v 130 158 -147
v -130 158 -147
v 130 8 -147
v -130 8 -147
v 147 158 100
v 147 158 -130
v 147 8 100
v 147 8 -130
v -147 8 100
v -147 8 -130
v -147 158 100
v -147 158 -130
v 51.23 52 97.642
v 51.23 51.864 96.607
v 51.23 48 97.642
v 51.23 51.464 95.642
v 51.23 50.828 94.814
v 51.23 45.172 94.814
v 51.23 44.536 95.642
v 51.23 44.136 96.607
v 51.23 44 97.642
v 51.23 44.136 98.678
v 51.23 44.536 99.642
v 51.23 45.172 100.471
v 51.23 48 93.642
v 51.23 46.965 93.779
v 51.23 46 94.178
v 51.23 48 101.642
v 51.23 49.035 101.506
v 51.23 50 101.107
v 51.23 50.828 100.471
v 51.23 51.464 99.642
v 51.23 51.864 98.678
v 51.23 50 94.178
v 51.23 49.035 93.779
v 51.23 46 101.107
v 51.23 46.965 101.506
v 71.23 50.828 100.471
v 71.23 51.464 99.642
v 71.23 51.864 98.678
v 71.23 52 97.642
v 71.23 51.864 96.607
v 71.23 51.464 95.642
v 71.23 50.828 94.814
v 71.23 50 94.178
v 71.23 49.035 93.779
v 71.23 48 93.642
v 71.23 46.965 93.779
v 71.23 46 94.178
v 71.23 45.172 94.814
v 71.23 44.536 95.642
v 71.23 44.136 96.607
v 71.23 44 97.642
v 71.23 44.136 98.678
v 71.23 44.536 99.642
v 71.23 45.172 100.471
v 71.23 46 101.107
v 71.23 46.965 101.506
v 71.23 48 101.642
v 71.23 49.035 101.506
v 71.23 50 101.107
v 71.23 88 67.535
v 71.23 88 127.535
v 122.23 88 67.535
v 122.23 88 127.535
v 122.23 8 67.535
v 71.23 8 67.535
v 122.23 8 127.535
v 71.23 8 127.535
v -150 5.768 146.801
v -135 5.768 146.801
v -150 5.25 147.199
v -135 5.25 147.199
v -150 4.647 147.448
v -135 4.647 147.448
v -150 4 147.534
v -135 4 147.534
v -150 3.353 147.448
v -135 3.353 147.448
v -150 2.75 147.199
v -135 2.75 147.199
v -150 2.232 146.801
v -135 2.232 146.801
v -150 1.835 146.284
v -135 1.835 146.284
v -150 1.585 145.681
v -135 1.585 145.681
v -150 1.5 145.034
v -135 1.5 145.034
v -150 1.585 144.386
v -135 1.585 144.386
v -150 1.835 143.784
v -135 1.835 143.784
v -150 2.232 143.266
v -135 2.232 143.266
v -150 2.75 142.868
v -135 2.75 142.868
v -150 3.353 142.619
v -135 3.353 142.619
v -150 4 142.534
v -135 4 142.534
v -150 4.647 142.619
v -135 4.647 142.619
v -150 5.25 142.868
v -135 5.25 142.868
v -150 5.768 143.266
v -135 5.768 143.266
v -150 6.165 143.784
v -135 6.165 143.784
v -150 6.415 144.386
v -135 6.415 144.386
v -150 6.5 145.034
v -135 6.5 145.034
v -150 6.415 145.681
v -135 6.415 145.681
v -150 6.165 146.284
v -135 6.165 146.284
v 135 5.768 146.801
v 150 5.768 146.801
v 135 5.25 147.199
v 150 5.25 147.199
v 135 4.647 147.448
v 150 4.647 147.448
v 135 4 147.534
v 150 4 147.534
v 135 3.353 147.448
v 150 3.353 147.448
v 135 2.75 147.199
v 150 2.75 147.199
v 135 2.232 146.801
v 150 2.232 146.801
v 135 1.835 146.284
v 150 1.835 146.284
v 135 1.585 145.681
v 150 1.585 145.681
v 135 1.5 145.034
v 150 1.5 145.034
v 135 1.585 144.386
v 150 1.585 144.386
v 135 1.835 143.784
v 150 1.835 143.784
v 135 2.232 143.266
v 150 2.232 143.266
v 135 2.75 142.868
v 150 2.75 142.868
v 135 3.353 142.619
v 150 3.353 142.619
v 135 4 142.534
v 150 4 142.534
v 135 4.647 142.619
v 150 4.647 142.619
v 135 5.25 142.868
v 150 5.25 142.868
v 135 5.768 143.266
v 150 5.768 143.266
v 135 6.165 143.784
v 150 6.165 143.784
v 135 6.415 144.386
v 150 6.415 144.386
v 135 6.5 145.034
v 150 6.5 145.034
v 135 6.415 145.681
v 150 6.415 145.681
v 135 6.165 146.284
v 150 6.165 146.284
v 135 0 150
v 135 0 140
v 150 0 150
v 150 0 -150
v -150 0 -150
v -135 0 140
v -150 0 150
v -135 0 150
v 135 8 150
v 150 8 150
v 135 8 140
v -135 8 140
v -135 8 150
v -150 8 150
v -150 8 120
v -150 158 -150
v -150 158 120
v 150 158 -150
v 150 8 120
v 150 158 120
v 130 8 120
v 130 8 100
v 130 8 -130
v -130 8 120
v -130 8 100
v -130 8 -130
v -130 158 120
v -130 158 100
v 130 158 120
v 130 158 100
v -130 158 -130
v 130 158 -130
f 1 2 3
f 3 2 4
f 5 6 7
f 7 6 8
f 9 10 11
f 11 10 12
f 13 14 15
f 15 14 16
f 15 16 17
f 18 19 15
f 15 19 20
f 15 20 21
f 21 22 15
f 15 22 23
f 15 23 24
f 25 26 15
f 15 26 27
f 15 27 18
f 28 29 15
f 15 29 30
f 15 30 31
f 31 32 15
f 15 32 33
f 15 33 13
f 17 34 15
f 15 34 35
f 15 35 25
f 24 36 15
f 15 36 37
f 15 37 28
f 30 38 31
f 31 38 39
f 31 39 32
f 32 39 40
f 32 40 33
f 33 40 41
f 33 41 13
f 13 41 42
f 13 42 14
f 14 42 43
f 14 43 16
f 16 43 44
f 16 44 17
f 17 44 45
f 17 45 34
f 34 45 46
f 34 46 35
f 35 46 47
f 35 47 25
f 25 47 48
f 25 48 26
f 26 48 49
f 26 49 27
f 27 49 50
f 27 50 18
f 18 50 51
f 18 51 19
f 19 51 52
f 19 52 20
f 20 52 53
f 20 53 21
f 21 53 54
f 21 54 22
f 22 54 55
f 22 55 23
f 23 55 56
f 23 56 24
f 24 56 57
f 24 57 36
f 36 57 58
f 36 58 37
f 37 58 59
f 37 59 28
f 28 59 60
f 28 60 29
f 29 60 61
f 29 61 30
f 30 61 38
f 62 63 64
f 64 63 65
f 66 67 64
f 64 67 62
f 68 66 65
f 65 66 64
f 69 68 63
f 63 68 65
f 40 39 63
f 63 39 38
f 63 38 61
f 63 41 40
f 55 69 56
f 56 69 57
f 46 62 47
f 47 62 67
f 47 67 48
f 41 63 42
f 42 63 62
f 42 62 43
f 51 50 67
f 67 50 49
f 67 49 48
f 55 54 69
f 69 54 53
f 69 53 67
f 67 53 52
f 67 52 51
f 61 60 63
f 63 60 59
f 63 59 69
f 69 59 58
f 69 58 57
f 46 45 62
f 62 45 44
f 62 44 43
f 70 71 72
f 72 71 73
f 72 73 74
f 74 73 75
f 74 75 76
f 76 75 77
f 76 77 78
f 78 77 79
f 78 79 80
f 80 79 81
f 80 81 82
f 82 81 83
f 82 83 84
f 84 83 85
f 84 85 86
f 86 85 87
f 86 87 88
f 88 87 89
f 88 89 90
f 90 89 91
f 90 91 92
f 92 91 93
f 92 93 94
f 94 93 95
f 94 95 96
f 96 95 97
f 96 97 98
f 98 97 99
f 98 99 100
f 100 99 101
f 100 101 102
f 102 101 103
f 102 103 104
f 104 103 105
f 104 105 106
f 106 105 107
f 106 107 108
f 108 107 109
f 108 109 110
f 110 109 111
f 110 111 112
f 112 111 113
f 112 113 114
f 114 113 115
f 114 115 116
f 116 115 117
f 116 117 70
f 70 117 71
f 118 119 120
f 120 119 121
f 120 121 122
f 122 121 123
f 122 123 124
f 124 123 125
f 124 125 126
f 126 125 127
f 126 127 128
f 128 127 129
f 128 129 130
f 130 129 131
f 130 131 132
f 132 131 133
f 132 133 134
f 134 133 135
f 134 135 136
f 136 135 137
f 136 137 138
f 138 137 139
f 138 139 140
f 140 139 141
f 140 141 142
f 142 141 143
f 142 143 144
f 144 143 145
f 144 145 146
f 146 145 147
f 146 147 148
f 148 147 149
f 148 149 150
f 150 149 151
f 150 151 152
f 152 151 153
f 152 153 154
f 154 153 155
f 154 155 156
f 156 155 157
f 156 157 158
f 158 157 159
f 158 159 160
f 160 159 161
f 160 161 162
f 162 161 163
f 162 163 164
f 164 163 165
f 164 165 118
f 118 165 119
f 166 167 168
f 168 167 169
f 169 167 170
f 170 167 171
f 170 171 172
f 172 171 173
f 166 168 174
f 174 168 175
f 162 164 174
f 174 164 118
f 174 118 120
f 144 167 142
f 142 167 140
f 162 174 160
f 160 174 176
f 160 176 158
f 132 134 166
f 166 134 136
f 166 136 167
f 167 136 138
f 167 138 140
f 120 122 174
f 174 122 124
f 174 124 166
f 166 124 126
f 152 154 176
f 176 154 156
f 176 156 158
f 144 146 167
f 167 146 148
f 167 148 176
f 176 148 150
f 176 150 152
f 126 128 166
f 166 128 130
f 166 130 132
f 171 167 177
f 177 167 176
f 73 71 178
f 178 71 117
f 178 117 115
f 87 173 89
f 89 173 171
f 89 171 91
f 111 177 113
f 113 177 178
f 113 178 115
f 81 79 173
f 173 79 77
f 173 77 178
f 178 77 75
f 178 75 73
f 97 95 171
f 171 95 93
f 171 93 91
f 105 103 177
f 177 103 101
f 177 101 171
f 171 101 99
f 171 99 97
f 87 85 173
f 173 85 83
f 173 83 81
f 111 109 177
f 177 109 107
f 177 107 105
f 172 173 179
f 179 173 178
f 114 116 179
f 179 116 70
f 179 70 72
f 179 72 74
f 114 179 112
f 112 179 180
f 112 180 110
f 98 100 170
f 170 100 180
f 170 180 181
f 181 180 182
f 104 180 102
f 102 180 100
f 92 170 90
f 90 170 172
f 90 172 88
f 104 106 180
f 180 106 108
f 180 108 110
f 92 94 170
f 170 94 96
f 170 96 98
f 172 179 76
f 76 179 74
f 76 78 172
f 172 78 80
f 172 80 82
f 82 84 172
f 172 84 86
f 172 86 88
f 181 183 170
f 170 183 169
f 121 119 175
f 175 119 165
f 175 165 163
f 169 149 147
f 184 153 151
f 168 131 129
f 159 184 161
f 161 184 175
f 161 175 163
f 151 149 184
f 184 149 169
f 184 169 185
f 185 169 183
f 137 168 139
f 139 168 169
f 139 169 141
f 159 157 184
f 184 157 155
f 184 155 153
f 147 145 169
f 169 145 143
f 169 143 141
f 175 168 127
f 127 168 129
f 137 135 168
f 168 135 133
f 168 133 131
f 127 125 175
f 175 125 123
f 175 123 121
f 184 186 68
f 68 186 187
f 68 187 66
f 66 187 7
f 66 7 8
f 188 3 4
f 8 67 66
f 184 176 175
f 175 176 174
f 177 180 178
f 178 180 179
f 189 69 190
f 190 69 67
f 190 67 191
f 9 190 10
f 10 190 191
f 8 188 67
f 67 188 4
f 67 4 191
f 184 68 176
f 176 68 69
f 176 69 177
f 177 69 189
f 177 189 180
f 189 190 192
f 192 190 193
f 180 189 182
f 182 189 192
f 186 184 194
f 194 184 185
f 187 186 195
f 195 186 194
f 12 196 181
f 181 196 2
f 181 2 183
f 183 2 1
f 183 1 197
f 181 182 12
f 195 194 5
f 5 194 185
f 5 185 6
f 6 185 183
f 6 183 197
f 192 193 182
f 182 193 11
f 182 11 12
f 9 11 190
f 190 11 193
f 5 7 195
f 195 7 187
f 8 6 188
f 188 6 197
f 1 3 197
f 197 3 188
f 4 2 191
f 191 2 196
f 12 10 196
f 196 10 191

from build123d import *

# Parameters (mm, degrees)
BOSS_EXTRUDE1_DEPTH     = 8
CUT_EXTRUDE1_DEPTH      = 213.282830205
CUT_EXTRUDE1_DEPTH_BACK = 213.282830205
SKETCH2_R               = 2.5
SKETCH3_W               = 20
SKETCH3_H               = 20
BOSS_EXTRUDE2_DEPTH     = 150
BOSS_EXTRUDE3_DEPTH     = 150
SKETCH5_W               = 51
SKETCH5_H               = 60
BOSS_EXTRUDE4_DEPTH     = 80
SKETCH7_R               = 4
BOSS_EXTRUDE5_DEPTH     = 20


with BuildPart() as part:
    # Sketch1 → Boss-Extrude1 (new body)
    with BuildSketch(Plane(origin=(0, 0, 0), x_dir=(1, 0, 0), z_dir=(0, 1, 0))):
        Polygon((135, -150), (150, -150), (150, 150), (-150, 150), (-150, -150), (-135, -150), (-135, -140), (135, -140), align=None)
    extrude(amount=BOSS_EXTRUDE1_DEPTH)

    # Sketch2 → Cut-Extrude1 (cut, two sides: drawn at the far end of the back side and taken through both)
    with BuildSketch(Plane(origin=(0, 0, 0), x_dir=(0, 0, -1), z_dir=(1, 0, 0)).offset(-CUT_EXTRUDE1_DEPTH_BACK)):
        with Locations((-145.033528283, 4)):
            Circle(SKETCH2_R)
    extrude(amount=CUT_EXTRUDE1_DEPTH + CUT_EXTRUDE1_DEPTH_BACK, mode=Mode.SUBTRACT)

    # Sketch3 → Boss-Extrude2 (add)
    with BuildSketch(Plane(origin=(0, 8, 0), x_dir=(1, 0, 0), z_dir=(0, 1, 0))):
        with Locations((-140, 140)):
            Rectangle(SKETCH3_W, SKETCH3_H)
        with Locations((140, 140)):
            Rectangle(SKETCH3_W, SKETCH3_H)
        with Locations((140, -110)):
            Rectangle(SKETCH3_W, SKETCH3_H)
        with Locations((-140, -110)):
            Rectangle(SKETCH3_W, SKETCH3_H)
    extrude(amount=BOSS_EXTRUDE2_DEPTH)

    # Sketch4 → Boss-Extrude3 (add)
    with BuildSketch(Plane(origin=(0, 8, 0), x_dir=(1, 0, 0), z_dir=(0, 1, 0))):
        Polygon((-147, 147), (-147, -117), (-150, -120), (-150, 150), (150, 150), (150, -120), (147, -117), (147, 147), align=None)
    extrude(amount=BOSS_EXTRUDE3_DEPTH)

    # Sketch5 → Boss-Extrude4 (add)
    with BuildSketch(Plane(origin=(0, 8, 0), x_dir=(1, 0, 0), z_dir=(0, 1, 0))):
        with Locations((96.729689643, -97.534797701)):
            Rectangle(SKETCH5_W, SKETCH5_H)
    extrude(amount=BOSS_EXTRUDE4_DEPTH)

    # Sketch7 → Boss-Extrude5 (add)
    with BuildSketch(Plane.ZY.offset(-71.229689643)):
        with Locations(Location((97.642468488, 48, 0), (0, 0, 180))):
            Circle(SKETCH7_R)
    extrude(amount=BOSS_EXTRUDE5_DEPTH)


solid = part.part
